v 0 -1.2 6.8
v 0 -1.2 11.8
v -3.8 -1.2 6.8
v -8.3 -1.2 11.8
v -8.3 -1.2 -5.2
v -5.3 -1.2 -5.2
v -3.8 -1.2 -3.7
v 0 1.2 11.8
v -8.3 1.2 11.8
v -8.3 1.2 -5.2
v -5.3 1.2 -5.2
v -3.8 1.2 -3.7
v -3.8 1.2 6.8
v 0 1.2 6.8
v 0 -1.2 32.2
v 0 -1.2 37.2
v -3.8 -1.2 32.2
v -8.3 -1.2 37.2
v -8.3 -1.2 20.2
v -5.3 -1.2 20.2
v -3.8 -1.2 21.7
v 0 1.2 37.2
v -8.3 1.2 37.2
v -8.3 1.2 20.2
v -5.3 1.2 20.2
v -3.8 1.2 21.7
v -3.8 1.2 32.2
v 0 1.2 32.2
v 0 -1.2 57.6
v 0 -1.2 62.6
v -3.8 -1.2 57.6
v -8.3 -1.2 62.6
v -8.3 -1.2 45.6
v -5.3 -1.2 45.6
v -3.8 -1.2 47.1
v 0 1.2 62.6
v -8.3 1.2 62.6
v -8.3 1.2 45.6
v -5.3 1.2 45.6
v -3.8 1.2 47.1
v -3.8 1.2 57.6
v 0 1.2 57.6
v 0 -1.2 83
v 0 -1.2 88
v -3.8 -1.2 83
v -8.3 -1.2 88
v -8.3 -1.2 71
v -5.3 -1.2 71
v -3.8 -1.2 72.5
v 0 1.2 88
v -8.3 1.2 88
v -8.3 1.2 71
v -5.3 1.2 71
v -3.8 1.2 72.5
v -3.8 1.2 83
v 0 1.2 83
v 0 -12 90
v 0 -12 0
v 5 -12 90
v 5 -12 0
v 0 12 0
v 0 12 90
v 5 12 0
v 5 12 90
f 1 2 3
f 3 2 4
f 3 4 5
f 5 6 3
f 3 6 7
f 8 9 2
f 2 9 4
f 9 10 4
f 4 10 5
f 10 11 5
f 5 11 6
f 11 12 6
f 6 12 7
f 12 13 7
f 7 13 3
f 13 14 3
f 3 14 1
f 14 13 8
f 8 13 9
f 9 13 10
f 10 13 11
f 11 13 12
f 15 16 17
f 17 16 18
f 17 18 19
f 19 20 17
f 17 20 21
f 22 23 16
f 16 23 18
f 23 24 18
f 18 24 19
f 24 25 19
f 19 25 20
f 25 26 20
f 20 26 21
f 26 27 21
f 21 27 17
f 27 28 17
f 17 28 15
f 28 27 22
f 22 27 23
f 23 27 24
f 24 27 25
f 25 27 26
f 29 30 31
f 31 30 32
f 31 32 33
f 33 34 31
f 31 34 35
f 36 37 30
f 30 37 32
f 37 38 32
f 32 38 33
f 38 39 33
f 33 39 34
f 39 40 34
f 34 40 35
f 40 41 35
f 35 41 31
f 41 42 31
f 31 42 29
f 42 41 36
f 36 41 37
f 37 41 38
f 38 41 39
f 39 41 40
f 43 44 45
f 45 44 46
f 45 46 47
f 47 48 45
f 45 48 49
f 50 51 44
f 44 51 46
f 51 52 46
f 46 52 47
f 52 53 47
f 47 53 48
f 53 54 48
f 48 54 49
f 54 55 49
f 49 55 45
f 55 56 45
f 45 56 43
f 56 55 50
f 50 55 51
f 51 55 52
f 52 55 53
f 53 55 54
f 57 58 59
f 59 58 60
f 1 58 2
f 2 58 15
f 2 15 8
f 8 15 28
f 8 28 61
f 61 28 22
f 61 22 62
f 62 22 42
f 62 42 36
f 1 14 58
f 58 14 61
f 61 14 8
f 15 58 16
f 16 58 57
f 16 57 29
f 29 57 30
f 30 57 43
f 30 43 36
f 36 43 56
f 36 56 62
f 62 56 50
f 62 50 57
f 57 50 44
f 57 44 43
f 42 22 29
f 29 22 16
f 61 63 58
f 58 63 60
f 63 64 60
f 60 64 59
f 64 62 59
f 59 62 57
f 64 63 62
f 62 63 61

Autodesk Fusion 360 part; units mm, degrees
sketch "Plate" plane through (0, 0, 0) normal (0, 1, 0) x (1, 0, 0)
  line L0 (0, 0) -> (5, 0)
  line L1 (5, 0) -> (5, -90)
  line L2 (5, -90) -> (0, -90)
  line L3 (0, -90) -> (0, 0)
  dimension "d67" = 5
  dimension "d68" = 90
extrude "Plate (1)" add sketch "Plate" along normal mid plane 24
sketch "Hook profile" plane through (0, 0, 0) normal (0, 1, 0) x (1, 0, 0)
  line L0 (0, -88) -> (-8.3, -88)
  line L1 (-8.3, -88) -> (-8.3, -71)
  line L2 (-8.3, -71) -> (-5.3, -71)
  line L3 (-5.3, -71) -> (-3.8, -72.5)
  line L4 (-3.8, -72.5) -> (-3.8, -83)
  line L5 (-3.8, -83) -> (0, -83)
  line L6 (0, -83) -> (0, -88)
  dimension "d71" = 88
  dimension "d72" = 8.3
  dimension "d73" = 3.8
  dimension "d74" = 5
  dimension "d75" = 10.5
  dimension "d76" = 1.5
  dimension "d77" = 1.5
extrude "Hook profile (1)" add sketch "Hook profile" along normal mid plane 2.4
pattern_linear "Hook rows" count 4 spacing 25.4 along (0, 0, -1) count 3 spacing 0 along (0, 0, 1) of "Hook profile (1)"
equation "bracketWidth = 24.0 mm" comment "gauge width, as the bracket"
equation "hookTabWidth = slotWidth - 0.8 mm" comment "blade width through the slot"
equation "slotPitchVertical = 25.4 mm" comment "1 inch, measured"
equation "slotWidth = 3.2 mm" comment "measured slot width in the upright"
equation "faceMetalThickness = 2.0 mm" comment "upright face metal"
equation "hookThroat = faceMetalThickness + 1.8 mm" comment "gap behind the plate"
equation "hookNeckHeight = 5.0 mm" comment "bears on the slot bottom edge"
equation "hookLipThickness = 4.5 mm" comment "lip thickness behind the face"
equation "hookLipDrop = 12.0 mm" comment "engagement below the neck"
equation "plateHeight = 90.0 mm" comment "plate height"
equation "gaugePlateThickness = 5.0 mm" comment "gauge plate"
equation "hookLipChamfer = 1.5 mm" comment "lead-in past slot burrs"
equation "topHookNeckTop = 88.0 mm" comment "top row, below the plate top"
equation "hookRows = 4" comment "number of hook rows (pattern count)"
equation "d67 = gaugePlateThickness"
equation "d68 = plateHeight"
equation "d69 = bracketWidth"
equation "d71 = topHookNeckTop"
equation "d72 = hookThroat + hookLipThickness"
equation "d73 = hookThroat"
equation "d74 = hookNeckHeight"
equation "d75 = hookLipDrop - hookLipChamfer"
equation "d76 = hookLipChamfer"
equation "d77 = hookLipChamfer"
equation "d78 = hookTabWidth"
equation "d80 = hookRows"
equation "d82 = -slotPitchVertical"
